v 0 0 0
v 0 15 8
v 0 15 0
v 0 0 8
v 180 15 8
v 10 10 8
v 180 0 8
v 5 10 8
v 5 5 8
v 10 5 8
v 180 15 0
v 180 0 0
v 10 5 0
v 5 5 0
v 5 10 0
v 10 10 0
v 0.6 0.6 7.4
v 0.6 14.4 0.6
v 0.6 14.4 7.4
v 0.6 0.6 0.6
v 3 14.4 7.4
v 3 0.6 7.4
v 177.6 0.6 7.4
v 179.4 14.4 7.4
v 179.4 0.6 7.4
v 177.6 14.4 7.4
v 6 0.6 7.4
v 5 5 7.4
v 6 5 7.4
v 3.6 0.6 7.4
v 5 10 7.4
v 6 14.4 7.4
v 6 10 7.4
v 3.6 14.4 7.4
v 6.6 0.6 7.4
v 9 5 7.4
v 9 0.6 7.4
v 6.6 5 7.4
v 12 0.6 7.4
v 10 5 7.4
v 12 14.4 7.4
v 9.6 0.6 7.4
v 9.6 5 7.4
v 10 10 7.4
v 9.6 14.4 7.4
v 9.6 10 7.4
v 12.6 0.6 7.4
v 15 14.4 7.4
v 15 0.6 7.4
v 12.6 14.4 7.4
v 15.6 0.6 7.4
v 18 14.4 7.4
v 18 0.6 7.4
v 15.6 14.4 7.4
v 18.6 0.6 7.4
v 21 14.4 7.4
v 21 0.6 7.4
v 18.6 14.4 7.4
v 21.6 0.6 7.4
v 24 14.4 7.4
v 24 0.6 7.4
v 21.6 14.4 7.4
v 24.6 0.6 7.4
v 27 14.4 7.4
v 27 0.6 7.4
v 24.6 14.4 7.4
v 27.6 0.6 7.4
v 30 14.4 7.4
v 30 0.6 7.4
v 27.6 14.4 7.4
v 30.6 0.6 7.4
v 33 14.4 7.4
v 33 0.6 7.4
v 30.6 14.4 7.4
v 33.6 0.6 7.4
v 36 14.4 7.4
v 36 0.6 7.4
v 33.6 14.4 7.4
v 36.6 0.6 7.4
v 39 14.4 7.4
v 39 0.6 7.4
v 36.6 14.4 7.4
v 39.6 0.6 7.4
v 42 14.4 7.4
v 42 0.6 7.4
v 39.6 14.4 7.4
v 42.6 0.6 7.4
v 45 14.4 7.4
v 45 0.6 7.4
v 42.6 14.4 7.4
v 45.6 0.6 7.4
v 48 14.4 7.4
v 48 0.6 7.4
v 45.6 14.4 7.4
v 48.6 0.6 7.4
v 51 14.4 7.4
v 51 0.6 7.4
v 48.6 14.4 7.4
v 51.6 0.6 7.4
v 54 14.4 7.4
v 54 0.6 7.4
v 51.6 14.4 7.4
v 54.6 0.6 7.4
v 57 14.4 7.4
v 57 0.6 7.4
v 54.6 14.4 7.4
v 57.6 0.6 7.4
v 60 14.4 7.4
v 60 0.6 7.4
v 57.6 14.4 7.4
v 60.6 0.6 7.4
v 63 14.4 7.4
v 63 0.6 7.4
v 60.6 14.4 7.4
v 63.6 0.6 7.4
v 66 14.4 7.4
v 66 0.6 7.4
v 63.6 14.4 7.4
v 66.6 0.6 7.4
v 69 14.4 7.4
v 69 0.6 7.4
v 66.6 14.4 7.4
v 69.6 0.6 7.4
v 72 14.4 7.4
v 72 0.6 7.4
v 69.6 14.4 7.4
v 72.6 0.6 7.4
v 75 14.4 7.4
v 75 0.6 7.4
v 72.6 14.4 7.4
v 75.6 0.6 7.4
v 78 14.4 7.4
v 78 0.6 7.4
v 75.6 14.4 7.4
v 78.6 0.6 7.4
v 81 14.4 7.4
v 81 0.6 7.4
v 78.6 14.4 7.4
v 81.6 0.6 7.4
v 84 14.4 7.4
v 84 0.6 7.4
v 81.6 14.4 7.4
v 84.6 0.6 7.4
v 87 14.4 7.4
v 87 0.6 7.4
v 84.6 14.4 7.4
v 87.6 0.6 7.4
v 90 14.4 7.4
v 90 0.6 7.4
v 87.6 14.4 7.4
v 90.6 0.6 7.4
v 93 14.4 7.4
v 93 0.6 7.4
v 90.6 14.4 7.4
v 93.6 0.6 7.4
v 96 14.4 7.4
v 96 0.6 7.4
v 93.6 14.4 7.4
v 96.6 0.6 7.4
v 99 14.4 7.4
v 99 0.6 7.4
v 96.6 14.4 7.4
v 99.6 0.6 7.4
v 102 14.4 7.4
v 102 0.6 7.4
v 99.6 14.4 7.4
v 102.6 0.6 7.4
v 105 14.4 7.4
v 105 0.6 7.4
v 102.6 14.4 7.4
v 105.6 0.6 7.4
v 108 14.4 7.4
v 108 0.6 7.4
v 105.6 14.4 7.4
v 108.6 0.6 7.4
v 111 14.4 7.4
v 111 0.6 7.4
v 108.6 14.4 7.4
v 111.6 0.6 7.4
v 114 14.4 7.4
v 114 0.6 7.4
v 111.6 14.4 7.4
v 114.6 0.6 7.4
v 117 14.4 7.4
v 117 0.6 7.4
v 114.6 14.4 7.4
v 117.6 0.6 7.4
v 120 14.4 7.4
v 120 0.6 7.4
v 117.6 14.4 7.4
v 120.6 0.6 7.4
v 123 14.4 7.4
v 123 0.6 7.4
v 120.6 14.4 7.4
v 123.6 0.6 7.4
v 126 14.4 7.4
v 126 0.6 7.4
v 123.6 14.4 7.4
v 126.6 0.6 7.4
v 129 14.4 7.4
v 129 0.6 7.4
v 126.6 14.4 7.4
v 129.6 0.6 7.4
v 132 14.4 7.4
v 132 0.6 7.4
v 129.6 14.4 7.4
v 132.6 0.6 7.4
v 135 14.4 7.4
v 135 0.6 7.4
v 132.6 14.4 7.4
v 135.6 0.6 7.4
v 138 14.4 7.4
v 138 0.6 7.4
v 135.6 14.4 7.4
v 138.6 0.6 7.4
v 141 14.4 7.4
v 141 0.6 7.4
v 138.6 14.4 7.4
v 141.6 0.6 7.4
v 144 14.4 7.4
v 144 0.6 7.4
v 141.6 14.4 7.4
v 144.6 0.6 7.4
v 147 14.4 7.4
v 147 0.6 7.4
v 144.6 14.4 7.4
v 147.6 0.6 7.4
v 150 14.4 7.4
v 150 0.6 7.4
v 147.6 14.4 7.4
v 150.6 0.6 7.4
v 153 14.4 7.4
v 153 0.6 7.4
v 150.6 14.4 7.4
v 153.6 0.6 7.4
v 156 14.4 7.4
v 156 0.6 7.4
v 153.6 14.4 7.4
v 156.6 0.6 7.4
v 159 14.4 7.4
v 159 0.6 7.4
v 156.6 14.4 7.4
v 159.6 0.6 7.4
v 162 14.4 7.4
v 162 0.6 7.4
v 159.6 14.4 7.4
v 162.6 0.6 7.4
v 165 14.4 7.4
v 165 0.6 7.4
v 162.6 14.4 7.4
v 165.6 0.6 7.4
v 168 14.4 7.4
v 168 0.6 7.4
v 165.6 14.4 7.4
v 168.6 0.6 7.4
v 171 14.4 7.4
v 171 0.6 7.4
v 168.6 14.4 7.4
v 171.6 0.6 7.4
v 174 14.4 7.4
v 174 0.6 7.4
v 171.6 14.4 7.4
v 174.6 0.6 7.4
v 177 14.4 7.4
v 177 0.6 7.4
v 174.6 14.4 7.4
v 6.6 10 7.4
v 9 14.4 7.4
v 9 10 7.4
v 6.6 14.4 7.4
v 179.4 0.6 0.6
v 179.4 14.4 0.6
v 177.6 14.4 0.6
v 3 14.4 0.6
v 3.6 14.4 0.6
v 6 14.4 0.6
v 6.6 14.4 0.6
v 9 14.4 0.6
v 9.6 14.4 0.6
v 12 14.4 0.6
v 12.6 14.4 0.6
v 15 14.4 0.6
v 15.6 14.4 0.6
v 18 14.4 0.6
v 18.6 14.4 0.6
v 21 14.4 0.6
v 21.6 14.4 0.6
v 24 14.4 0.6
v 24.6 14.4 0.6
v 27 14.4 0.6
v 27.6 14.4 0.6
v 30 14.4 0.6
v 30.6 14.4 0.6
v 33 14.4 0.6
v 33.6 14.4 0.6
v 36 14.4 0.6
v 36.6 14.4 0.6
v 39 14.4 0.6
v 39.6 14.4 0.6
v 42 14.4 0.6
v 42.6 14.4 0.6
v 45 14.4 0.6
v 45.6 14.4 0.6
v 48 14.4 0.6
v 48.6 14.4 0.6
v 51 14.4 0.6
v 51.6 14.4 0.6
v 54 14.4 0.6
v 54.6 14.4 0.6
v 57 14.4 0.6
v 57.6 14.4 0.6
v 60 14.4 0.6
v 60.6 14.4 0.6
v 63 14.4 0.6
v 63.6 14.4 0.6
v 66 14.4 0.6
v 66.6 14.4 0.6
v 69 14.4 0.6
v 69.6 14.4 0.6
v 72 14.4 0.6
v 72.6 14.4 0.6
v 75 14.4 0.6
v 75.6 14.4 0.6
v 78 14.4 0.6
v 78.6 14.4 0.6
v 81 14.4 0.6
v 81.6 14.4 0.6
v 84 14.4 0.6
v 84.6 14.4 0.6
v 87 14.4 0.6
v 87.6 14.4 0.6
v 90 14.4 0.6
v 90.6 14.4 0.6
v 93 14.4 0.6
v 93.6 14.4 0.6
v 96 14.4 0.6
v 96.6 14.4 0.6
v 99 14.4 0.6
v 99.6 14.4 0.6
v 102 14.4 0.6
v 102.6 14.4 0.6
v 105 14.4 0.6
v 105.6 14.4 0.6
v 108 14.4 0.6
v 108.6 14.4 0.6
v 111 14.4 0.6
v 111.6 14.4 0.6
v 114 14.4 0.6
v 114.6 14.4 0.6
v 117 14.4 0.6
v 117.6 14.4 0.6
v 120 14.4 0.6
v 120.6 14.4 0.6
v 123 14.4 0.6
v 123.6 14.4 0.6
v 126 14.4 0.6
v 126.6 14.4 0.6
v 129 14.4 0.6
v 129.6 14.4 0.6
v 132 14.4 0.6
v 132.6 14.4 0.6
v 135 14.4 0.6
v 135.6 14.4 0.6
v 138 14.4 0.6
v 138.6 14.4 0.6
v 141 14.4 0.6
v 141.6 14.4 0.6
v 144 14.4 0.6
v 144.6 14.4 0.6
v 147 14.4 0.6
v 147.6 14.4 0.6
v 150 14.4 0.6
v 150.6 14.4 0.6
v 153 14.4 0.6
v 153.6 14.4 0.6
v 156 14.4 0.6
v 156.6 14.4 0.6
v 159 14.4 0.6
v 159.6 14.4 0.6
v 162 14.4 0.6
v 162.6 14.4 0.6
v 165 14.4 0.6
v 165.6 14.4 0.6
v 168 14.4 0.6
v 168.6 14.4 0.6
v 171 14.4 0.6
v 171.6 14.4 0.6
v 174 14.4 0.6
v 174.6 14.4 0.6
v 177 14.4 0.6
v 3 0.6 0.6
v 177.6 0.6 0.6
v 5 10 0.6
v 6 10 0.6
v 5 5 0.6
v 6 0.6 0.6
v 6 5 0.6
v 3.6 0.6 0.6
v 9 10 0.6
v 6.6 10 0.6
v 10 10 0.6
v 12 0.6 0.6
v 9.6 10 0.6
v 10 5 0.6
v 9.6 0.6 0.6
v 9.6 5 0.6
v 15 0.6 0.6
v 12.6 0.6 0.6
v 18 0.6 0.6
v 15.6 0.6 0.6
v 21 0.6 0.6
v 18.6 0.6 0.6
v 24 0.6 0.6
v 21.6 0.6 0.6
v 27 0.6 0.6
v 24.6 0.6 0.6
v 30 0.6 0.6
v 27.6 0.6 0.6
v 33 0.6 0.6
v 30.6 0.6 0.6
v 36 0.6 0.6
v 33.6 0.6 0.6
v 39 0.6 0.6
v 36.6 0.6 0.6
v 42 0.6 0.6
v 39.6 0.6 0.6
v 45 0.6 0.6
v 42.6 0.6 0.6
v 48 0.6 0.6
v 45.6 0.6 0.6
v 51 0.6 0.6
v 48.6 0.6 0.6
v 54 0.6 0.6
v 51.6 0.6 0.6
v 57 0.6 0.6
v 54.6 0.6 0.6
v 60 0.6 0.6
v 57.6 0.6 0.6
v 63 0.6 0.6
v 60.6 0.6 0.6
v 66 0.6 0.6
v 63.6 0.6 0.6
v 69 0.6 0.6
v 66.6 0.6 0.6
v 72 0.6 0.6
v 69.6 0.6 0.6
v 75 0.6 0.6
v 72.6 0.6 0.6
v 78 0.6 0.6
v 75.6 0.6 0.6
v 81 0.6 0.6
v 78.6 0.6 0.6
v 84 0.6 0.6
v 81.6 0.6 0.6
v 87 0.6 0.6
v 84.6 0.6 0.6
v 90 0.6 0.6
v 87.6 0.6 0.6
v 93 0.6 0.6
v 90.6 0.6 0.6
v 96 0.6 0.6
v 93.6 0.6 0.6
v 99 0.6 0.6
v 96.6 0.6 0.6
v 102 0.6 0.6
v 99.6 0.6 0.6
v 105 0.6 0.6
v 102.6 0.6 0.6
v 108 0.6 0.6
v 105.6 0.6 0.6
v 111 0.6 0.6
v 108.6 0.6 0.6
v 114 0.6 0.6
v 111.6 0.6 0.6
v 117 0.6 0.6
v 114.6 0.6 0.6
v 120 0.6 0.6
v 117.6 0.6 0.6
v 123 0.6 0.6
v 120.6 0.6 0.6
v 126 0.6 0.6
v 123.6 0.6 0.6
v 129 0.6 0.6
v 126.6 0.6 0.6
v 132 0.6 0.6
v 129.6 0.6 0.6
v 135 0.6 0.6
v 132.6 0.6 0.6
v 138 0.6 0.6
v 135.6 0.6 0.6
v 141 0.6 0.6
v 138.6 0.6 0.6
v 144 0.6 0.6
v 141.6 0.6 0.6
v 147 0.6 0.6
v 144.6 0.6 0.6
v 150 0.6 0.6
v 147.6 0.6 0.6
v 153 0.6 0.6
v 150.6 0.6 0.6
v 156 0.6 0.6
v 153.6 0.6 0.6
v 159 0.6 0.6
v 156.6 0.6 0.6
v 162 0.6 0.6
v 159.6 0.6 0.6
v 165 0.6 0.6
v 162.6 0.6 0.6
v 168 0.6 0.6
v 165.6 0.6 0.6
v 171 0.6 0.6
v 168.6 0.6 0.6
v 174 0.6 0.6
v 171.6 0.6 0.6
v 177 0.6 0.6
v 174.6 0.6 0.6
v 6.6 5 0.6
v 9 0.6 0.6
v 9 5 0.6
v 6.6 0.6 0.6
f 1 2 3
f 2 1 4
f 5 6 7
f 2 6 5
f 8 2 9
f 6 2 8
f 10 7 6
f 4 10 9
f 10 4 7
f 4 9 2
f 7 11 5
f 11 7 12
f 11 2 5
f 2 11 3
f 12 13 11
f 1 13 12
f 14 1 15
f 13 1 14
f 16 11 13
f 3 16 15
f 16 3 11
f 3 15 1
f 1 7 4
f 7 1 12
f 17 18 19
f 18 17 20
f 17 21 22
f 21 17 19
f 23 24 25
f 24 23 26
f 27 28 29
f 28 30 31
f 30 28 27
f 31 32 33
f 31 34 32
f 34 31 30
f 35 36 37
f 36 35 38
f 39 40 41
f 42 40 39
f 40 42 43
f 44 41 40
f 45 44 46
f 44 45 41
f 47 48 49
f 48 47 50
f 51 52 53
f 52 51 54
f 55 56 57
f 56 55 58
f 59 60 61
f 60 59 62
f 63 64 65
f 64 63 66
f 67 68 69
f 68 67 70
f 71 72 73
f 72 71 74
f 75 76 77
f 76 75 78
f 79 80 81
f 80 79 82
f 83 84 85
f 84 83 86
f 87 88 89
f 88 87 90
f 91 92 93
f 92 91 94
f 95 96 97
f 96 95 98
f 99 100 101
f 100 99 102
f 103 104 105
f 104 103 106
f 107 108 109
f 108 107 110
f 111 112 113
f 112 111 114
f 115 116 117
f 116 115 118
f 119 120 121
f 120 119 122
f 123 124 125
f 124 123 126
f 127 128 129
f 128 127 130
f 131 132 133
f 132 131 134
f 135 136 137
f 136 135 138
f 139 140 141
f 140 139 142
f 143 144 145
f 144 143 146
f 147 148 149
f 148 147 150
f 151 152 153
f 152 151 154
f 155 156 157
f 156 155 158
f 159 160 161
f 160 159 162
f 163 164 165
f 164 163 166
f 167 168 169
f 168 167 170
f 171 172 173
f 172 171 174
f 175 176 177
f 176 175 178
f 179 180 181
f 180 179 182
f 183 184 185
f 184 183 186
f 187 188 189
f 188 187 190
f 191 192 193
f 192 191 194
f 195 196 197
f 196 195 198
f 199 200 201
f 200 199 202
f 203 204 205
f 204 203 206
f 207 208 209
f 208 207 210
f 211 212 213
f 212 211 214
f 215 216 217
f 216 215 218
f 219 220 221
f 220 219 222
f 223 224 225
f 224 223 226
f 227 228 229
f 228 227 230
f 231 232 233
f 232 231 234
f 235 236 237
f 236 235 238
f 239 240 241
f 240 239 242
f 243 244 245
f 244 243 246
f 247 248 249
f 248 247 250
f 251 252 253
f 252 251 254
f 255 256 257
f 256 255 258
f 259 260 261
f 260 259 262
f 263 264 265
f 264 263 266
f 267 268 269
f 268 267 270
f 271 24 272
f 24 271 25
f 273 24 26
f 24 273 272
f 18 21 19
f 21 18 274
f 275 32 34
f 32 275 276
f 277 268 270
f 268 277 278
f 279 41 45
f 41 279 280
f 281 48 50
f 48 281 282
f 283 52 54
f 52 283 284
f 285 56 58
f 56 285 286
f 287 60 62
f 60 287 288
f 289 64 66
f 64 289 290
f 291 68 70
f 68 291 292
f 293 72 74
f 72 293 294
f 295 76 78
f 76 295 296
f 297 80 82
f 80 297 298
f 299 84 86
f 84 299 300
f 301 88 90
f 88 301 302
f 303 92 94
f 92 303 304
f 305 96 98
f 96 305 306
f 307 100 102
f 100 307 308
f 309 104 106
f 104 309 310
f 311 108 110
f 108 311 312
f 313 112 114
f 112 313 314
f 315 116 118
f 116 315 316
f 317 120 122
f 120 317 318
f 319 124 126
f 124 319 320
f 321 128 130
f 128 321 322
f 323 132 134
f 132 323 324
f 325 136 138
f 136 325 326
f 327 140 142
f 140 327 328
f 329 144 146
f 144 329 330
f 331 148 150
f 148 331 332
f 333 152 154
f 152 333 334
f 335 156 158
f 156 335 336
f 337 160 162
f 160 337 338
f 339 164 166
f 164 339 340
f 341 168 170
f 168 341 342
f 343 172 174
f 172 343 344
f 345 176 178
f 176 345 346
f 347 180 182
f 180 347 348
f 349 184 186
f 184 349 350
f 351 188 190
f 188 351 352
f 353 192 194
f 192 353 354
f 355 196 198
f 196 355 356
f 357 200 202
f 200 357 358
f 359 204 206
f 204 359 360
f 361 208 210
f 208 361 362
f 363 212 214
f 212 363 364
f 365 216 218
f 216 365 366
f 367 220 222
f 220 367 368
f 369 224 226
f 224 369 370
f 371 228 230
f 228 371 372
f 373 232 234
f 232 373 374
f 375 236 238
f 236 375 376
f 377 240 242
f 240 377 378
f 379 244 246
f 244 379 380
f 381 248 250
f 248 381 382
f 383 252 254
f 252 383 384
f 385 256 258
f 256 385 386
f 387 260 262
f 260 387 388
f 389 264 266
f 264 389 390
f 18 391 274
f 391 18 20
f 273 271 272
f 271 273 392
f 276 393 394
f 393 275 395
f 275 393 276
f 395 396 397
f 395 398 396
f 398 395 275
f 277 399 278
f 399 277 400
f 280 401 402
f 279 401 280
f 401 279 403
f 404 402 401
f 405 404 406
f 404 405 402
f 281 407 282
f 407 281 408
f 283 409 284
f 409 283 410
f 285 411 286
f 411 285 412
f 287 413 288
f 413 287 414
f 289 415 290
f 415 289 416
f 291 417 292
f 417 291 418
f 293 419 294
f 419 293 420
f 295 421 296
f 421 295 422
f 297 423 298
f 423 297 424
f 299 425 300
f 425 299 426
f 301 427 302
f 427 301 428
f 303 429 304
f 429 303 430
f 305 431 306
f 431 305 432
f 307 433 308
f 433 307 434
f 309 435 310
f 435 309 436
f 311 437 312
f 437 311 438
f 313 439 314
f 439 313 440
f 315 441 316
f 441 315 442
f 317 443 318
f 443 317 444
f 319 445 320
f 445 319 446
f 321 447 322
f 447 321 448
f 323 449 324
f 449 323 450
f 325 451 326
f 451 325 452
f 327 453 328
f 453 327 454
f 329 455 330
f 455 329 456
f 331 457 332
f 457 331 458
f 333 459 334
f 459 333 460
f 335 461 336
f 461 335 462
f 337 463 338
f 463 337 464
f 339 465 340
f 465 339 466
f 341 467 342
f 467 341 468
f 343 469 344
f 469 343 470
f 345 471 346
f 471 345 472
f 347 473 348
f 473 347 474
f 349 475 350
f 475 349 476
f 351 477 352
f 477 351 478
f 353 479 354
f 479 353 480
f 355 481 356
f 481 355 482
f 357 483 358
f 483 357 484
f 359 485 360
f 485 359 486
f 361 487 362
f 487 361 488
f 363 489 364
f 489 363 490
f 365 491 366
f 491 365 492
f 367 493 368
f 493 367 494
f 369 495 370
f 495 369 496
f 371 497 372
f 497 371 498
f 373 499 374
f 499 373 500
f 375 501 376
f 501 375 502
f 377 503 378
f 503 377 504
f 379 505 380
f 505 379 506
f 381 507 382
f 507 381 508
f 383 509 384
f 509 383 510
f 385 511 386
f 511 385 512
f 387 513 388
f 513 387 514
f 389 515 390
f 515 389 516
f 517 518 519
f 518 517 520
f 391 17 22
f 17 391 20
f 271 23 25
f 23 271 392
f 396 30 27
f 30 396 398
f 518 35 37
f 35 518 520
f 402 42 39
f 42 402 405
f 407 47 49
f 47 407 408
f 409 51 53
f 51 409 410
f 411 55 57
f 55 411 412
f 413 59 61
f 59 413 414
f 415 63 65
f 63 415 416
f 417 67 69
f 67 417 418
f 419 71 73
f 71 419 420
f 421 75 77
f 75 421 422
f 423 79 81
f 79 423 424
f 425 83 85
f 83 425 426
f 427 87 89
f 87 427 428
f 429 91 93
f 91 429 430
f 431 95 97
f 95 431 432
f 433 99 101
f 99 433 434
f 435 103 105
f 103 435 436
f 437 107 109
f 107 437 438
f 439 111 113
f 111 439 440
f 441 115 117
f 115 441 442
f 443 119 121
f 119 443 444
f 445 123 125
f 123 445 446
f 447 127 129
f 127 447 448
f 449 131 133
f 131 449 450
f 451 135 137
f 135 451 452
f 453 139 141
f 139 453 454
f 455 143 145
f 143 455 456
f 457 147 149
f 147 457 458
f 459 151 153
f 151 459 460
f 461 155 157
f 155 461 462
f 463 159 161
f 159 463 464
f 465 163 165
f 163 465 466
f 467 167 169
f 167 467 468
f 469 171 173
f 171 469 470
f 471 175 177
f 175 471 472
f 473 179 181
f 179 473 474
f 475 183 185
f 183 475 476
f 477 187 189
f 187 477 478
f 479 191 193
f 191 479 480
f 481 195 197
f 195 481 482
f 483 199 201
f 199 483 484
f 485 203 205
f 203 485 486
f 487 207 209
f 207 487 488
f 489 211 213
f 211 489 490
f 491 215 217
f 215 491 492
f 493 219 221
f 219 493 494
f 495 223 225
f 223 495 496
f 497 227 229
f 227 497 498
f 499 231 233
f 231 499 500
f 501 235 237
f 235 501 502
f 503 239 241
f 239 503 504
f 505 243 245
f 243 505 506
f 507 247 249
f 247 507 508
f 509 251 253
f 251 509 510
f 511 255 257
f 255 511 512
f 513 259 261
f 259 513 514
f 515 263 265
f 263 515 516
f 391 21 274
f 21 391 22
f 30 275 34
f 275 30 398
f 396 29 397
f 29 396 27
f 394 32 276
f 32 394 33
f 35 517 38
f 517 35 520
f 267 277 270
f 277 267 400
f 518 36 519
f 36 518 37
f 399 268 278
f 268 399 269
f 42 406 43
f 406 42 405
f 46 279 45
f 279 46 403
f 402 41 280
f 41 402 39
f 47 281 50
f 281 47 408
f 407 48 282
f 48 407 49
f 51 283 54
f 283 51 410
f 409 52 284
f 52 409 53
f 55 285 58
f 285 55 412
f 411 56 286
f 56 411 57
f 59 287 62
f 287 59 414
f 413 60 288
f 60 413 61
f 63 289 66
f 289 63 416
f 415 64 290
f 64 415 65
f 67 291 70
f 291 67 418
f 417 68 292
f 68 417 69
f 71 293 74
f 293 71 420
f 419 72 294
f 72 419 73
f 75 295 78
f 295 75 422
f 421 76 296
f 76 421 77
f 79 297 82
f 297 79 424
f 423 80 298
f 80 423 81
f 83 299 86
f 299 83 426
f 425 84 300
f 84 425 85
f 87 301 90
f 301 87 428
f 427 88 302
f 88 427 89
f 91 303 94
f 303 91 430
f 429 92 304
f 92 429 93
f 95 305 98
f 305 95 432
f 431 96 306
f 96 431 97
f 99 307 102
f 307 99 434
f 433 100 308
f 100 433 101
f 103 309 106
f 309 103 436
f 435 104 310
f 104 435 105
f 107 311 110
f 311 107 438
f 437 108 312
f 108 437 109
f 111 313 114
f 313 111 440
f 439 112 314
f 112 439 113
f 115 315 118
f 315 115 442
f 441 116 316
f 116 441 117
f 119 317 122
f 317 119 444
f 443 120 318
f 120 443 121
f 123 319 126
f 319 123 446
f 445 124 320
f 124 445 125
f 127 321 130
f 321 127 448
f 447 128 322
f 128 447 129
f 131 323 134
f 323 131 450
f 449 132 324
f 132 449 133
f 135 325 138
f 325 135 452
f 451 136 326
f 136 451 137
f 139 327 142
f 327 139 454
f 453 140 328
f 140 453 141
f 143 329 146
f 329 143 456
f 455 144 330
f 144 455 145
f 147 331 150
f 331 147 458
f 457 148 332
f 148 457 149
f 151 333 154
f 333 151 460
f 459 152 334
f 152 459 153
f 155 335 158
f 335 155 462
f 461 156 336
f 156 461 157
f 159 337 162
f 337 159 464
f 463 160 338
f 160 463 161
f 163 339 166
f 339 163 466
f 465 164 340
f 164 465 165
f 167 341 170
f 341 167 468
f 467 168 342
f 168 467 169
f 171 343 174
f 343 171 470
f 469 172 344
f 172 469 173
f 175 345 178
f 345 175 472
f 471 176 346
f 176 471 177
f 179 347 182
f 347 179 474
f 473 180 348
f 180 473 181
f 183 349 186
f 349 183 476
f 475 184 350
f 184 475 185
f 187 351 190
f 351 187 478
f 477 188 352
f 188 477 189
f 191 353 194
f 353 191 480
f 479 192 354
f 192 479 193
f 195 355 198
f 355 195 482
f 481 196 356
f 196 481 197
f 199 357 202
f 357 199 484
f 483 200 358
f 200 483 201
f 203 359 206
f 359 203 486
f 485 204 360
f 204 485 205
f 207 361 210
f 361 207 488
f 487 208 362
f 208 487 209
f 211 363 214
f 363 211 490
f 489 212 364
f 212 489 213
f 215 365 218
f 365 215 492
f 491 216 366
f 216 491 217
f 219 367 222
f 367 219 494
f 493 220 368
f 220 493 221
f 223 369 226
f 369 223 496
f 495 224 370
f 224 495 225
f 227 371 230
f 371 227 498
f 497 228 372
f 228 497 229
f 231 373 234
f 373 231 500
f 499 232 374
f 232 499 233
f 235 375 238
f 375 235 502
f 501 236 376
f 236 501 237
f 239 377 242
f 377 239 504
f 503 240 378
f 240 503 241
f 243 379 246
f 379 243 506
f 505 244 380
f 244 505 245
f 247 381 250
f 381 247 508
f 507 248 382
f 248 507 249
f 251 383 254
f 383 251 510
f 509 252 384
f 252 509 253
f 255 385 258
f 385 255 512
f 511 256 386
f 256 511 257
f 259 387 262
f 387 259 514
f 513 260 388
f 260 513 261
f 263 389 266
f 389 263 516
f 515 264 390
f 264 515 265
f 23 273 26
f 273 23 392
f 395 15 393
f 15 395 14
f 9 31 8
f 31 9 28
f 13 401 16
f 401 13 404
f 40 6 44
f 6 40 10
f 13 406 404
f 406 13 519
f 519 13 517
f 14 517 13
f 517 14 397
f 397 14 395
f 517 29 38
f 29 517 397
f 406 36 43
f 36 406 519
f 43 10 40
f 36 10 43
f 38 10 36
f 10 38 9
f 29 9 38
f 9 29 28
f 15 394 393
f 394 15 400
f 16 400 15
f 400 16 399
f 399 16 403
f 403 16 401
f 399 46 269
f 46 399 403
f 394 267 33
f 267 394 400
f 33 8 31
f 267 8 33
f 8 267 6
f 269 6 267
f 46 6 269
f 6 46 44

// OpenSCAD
t=0.6;
n=180/3;

difference(){

	union(){ 
		difference(){
			cube([180,15,8]);
			
			translate([t,t,t])
			cube([180-2*t,15-2*t, 8-2*t]);
		}
		
		for(i=[0:180/n:180-1]){
			translate([i,0,0])
			cube([t,15,8]);
		}
	}

	*translate([-t,-t,8-t-0.1])
	cube([180+2*t,15+2*t,8+2*t]);

	translate([5,5,-1])
	cube([5,5,16]);

}
